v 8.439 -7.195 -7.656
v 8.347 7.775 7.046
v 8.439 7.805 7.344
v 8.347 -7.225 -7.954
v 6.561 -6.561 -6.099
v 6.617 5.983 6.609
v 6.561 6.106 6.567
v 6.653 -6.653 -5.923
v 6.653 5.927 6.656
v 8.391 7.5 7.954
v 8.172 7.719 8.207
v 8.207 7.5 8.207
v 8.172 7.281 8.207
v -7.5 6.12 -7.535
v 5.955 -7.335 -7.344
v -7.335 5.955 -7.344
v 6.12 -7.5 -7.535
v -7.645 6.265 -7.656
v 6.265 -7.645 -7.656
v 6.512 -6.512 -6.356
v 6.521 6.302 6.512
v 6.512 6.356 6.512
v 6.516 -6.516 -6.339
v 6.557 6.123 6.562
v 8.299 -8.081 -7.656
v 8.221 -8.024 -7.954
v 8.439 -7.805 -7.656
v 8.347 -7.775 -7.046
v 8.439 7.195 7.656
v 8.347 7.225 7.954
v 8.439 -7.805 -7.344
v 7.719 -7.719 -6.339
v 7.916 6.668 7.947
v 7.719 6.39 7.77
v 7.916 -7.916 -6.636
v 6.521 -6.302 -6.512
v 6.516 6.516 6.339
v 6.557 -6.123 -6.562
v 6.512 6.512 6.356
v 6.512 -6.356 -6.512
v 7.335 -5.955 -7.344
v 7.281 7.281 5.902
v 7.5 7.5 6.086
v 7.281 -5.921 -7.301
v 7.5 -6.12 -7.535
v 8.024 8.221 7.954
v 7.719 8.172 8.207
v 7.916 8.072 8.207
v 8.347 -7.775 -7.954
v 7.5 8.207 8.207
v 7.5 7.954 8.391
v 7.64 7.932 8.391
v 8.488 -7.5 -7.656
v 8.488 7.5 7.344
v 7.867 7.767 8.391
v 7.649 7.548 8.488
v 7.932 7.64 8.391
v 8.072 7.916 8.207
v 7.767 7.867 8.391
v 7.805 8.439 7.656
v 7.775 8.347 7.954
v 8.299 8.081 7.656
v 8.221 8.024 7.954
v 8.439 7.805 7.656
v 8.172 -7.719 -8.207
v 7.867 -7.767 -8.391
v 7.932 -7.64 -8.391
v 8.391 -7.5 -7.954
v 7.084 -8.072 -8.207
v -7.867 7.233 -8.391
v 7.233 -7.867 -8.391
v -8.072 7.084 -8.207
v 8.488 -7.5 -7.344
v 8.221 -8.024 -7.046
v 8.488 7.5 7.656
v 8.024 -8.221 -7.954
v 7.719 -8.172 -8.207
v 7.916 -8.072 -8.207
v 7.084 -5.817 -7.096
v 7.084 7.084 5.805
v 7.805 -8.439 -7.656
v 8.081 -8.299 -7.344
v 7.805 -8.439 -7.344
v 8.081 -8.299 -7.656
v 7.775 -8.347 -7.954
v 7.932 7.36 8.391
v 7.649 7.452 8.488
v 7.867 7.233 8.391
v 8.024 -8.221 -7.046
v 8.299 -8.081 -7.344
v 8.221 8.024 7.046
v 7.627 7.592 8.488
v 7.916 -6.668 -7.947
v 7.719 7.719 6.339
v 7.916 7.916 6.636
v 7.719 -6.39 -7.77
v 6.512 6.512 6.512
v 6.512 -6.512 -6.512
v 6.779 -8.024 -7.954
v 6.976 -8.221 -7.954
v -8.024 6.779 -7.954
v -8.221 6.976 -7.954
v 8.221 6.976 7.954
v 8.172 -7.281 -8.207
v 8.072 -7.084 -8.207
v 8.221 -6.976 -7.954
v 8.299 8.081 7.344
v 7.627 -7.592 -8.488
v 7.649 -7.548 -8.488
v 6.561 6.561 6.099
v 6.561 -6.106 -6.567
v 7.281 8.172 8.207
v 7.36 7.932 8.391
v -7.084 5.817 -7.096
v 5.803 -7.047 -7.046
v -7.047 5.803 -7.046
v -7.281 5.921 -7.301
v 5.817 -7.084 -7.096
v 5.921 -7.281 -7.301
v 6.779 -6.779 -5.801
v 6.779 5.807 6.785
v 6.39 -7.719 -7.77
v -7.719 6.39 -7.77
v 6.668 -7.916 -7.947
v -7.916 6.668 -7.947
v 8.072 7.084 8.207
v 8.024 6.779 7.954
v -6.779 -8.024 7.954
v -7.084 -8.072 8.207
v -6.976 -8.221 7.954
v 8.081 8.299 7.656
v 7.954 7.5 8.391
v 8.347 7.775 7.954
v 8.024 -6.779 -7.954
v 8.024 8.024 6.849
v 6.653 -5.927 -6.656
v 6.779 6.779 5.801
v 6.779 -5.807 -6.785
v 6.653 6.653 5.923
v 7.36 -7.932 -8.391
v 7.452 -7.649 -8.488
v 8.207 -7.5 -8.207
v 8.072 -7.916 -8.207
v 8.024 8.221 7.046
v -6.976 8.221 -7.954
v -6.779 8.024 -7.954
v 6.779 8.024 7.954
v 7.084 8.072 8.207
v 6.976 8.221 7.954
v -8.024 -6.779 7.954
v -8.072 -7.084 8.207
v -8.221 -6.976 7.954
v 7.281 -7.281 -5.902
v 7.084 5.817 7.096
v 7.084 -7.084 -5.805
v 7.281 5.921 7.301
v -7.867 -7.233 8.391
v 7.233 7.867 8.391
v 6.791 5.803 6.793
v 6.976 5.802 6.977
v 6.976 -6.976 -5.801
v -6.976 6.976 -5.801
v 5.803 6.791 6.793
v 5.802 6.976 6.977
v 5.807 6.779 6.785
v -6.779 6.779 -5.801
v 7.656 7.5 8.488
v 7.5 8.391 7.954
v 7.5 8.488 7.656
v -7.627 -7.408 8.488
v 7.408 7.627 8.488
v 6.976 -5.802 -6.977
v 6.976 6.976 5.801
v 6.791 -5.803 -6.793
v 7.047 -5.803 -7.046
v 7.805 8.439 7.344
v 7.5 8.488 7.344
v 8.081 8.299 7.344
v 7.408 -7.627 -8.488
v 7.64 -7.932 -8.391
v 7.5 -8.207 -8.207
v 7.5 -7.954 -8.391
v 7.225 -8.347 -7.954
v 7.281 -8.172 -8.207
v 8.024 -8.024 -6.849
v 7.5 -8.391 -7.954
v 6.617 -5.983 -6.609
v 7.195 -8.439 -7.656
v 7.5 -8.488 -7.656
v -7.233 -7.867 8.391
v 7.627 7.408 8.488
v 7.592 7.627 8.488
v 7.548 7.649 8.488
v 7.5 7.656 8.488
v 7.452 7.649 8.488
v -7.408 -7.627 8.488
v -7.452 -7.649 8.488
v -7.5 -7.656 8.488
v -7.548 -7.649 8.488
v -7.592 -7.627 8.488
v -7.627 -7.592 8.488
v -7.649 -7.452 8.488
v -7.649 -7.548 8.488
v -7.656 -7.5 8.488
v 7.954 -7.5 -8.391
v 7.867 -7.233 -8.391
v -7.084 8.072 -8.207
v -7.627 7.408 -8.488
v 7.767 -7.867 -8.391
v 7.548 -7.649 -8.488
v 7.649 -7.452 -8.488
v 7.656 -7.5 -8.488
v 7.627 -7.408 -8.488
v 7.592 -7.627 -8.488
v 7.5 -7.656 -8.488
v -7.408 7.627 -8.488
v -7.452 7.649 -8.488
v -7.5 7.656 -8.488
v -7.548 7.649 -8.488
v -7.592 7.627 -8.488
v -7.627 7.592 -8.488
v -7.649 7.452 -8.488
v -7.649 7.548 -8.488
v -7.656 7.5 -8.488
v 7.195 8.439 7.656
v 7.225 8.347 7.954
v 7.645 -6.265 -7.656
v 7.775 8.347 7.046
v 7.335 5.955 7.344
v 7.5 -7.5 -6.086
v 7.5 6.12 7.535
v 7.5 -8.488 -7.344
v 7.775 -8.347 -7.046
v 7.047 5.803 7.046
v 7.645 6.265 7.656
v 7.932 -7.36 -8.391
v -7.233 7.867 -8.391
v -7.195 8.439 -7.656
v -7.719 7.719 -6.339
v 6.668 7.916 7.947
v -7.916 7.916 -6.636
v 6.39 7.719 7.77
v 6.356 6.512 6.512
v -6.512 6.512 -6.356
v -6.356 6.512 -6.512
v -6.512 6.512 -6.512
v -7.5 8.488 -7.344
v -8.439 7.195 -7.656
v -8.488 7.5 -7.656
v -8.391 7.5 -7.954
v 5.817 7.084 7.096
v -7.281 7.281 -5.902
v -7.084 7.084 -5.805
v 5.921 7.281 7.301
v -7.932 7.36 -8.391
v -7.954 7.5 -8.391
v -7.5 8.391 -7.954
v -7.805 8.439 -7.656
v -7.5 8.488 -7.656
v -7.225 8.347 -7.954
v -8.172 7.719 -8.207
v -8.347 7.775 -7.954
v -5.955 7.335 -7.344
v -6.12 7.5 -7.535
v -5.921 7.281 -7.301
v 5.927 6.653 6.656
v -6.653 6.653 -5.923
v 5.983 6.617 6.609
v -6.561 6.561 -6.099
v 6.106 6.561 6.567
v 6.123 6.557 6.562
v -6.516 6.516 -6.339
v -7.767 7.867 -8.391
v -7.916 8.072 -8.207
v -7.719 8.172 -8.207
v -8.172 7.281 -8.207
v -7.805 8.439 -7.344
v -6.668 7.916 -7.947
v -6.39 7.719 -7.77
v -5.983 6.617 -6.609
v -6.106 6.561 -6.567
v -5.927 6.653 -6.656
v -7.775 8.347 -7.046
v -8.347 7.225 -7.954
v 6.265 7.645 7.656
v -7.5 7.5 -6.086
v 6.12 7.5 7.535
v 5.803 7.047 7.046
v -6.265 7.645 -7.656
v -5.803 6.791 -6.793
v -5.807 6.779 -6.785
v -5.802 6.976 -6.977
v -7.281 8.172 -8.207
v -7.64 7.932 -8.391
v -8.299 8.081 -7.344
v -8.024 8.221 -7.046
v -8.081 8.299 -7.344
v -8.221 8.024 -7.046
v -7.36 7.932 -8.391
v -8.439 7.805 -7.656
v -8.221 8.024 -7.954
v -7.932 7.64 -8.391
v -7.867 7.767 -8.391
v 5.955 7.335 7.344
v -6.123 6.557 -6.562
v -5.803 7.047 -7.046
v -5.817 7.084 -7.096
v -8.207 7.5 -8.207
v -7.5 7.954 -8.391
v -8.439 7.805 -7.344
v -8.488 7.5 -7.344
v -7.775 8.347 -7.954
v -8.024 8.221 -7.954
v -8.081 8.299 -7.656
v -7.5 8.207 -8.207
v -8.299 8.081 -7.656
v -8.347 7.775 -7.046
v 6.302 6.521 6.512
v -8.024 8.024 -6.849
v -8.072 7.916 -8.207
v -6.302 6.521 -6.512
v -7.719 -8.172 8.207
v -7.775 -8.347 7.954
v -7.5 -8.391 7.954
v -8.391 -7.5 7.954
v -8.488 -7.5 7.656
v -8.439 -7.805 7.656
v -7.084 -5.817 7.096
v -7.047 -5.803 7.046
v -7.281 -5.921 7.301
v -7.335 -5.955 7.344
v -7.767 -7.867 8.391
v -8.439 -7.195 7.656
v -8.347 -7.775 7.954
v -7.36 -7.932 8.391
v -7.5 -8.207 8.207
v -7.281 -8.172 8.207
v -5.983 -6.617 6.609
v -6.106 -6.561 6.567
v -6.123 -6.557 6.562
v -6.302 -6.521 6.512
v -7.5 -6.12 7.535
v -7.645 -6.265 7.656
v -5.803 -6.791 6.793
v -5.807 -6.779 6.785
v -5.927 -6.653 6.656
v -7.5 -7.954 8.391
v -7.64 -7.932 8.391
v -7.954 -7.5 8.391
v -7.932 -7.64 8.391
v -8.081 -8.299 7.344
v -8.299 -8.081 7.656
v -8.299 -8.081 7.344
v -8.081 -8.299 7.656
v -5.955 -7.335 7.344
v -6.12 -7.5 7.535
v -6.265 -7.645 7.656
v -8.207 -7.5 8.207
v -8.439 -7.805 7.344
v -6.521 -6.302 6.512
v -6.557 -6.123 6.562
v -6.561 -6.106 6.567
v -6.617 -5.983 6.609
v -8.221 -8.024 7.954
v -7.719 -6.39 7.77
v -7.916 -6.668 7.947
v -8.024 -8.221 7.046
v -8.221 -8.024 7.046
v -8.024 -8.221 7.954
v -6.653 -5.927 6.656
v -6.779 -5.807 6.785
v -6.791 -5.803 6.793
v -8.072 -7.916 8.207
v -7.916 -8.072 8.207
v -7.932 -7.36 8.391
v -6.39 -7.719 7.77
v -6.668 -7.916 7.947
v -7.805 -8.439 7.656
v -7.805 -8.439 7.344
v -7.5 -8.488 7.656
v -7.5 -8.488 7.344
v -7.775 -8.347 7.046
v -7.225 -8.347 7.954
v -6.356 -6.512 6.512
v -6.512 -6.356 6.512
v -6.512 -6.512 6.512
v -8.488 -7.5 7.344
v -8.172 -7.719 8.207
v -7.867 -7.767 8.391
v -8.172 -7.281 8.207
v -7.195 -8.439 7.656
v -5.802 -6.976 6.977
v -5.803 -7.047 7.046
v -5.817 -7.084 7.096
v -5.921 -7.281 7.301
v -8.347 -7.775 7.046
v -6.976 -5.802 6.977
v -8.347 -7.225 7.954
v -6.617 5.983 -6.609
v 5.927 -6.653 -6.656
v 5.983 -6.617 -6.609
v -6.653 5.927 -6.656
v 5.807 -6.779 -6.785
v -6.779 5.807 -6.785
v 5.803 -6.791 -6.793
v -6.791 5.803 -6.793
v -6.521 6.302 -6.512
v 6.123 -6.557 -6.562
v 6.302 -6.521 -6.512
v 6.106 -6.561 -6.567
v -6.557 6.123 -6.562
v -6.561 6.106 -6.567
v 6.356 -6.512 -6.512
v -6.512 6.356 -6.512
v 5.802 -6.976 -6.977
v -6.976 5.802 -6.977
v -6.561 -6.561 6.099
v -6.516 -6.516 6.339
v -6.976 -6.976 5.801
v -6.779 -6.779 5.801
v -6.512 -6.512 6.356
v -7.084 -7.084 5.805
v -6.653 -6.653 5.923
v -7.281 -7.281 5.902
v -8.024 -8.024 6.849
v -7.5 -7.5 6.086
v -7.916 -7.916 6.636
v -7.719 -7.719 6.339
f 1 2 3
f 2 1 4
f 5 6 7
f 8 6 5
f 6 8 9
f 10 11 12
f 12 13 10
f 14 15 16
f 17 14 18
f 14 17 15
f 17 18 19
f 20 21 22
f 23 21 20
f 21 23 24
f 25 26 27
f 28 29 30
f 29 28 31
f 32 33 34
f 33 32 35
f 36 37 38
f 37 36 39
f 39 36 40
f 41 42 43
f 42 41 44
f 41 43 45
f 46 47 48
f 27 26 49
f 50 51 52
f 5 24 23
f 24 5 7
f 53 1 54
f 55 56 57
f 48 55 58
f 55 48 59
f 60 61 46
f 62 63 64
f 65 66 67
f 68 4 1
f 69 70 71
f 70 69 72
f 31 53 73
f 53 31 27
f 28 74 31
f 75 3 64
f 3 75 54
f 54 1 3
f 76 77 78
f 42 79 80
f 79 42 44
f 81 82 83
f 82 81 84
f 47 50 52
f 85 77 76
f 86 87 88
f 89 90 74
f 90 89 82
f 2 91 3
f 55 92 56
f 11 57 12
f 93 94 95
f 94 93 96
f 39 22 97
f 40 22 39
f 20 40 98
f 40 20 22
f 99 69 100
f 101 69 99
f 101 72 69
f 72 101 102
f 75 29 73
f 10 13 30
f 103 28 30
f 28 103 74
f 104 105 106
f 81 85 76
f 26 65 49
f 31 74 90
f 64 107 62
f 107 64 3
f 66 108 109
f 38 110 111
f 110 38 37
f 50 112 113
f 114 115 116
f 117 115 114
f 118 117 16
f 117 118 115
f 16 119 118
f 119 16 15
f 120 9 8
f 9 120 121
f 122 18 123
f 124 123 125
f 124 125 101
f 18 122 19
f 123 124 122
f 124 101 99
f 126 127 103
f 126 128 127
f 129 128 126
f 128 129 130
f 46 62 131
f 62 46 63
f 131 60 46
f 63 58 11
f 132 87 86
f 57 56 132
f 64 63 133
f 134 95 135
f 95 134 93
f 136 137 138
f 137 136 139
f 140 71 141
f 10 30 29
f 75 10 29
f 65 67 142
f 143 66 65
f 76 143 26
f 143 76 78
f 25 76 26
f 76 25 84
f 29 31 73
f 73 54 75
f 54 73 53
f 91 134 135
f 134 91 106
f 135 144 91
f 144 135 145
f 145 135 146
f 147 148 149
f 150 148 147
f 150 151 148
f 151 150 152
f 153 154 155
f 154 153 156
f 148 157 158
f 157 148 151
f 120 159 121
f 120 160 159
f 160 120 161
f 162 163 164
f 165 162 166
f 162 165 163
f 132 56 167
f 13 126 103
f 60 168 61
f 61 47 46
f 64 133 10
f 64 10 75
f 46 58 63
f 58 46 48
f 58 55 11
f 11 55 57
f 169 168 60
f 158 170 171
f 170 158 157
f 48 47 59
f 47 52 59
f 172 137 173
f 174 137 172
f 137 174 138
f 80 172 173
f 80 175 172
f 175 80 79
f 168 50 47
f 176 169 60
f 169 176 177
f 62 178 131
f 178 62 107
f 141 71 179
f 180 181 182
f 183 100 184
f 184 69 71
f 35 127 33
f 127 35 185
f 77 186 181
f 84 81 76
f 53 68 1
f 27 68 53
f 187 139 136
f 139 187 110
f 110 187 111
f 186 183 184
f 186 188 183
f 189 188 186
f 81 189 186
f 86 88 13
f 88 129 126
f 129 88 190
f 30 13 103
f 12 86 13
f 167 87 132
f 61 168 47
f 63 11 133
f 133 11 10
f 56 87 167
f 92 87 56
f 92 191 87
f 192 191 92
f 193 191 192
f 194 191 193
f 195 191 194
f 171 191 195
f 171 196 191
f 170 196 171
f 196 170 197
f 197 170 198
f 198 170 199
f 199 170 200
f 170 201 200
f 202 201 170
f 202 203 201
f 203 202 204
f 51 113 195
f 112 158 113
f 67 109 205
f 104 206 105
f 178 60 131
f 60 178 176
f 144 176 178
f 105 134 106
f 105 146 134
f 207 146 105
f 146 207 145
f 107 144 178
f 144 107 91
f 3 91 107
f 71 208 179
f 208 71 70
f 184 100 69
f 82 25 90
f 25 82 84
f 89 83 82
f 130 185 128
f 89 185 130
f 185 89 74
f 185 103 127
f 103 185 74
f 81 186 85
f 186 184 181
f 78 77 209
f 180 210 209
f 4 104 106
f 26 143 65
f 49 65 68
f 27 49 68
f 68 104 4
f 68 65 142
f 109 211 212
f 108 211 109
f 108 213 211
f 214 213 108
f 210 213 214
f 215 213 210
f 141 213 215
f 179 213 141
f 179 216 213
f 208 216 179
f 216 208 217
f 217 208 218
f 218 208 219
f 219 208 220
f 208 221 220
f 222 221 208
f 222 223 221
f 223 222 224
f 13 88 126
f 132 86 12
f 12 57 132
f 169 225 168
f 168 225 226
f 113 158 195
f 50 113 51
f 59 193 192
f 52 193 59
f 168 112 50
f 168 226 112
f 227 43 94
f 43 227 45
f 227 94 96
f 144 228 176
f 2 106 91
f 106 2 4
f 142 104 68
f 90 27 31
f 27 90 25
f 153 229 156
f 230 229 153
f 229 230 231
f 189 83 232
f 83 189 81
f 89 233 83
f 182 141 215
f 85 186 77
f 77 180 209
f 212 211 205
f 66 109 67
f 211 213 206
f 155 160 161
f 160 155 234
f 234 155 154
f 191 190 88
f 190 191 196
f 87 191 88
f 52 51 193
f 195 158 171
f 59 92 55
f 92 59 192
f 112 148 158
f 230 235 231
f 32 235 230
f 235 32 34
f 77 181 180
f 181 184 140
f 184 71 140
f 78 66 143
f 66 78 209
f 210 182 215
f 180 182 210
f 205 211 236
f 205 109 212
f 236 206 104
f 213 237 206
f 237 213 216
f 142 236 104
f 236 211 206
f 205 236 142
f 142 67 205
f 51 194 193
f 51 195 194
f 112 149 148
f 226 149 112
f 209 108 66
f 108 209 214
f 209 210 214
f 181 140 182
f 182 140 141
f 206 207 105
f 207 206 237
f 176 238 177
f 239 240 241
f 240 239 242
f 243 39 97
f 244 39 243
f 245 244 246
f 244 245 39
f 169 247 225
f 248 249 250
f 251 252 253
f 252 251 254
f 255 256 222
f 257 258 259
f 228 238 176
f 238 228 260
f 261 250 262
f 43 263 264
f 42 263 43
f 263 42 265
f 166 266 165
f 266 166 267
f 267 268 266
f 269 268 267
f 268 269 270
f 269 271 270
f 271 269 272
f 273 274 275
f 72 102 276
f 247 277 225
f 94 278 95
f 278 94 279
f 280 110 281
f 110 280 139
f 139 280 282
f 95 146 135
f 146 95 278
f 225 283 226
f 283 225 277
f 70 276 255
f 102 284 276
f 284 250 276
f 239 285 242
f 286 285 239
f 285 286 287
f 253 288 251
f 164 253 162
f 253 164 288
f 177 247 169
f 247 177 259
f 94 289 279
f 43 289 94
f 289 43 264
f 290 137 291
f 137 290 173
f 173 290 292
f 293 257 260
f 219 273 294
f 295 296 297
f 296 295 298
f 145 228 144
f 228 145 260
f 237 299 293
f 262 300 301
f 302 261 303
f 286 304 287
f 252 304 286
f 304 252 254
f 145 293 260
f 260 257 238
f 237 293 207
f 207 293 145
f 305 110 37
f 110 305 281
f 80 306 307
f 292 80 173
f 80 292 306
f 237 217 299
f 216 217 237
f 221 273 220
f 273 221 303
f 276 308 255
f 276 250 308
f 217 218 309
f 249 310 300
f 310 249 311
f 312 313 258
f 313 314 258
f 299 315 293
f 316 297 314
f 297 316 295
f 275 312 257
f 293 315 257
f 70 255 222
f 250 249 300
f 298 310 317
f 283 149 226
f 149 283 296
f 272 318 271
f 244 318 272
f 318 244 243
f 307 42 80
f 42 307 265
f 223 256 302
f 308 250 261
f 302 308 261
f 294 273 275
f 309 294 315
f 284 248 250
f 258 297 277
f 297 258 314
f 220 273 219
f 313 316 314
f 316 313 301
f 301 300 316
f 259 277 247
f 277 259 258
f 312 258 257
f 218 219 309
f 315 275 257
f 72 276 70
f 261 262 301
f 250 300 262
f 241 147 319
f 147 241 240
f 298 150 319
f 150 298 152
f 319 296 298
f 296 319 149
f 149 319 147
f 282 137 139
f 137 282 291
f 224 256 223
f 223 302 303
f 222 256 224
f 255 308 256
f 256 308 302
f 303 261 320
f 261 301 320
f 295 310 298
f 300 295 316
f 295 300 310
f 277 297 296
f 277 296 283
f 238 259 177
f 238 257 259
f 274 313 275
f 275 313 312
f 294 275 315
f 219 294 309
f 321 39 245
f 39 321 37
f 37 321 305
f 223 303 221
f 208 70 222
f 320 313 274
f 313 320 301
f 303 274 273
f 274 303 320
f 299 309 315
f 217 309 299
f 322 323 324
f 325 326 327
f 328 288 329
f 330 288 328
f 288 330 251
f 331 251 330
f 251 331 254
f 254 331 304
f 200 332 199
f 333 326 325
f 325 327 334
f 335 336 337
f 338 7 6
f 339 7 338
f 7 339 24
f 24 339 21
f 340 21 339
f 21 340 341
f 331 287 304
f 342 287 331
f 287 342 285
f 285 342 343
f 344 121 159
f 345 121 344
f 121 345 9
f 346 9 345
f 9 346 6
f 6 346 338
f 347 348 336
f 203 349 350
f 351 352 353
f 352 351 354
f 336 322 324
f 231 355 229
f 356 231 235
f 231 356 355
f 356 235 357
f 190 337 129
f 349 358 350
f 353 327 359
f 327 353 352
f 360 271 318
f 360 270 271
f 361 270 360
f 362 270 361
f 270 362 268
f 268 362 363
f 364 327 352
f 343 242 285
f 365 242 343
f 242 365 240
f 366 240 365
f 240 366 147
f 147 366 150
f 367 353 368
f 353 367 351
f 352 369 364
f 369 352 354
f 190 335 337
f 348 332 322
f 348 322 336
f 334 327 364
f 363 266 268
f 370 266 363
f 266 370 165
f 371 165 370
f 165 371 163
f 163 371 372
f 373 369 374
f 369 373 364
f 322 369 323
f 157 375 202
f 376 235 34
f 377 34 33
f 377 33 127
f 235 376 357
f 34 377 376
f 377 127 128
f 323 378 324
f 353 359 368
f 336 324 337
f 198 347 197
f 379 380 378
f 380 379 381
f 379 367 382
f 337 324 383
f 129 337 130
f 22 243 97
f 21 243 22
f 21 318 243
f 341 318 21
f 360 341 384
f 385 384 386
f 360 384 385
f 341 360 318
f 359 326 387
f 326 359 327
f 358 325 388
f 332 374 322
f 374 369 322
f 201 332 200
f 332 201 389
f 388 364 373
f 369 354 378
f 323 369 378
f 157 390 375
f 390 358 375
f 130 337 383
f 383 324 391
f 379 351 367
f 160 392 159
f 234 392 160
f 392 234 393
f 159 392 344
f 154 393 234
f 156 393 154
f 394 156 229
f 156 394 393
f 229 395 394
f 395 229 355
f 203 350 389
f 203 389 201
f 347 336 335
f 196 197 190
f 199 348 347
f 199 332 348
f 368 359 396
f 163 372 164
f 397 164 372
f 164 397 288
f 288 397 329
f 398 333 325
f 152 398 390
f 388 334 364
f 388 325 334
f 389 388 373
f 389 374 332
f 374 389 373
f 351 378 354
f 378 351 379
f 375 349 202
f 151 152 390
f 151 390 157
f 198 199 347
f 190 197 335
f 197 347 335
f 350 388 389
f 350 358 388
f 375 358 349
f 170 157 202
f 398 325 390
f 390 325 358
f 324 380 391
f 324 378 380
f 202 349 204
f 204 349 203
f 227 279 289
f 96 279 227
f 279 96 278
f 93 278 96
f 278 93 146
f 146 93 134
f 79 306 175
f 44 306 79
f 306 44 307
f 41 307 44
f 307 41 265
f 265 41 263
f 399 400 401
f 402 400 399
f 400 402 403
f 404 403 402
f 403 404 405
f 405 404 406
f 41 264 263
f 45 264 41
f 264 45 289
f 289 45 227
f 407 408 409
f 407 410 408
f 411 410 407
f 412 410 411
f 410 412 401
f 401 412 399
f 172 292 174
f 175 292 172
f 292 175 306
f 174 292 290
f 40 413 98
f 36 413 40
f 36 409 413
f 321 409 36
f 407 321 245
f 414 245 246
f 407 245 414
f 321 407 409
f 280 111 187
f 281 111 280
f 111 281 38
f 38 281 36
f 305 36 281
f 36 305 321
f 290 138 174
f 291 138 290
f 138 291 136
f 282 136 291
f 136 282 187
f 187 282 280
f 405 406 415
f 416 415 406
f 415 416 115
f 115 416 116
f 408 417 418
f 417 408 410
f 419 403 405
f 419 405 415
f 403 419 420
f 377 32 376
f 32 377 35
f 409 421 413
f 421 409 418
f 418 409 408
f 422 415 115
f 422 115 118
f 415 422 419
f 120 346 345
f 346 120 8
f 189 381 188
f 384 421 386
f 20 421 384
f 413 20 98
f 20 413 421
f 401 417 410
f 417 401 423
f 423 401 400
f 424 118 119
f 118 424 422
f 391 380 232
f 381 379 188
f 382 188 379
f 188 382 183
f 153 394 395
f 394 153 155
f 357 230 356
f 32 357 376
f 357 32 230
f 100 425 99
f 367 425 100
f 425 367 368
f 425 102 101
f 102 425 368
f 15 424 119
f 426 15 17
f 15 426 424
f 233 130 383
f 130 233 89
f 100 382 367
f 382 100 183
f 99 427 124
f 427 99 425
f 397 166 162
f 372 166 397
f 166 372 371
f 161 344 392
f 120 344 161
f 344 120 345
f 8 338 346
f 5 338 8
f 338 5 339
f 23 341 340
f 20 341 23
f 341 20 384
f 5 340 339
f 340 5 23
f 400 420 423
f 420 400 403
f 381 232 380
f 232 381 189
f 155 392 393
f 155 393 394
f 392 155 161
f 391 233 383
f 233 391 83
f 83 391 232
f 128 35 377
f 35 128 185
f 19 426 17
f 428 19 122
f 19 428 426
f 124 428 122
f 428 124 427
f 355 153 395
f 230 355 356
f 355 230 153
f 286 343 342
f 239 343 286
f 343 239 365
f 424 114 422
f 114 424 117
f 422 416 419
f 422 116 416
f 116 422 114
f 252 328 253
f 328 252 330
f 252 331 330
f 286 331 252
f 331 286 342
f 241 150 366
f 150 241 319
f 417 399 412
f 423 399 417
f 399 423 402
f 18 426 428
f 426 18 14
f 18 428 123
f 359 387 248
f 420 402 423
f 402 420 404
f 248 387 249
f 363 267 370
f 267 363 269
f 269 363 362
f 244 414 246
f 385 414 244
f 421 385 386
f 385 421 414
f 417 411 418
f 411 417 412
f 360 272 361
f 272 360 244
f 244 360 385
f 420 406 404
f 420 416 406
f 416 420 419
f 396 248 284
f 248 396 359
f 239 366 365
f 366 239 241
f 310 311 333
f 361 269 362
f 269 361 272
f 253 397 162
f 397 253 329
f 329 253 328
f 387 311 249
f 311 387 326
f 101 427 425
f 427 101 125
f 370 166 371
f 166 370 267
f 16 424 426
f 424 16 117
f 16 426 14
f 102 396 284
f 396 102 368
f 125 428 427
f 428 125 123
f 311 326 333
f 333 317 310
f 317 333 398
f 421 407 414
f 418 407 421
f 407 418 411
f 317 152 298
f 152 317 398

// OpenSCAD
/*

tetrahedron

*/


side = 15;  // side dimension [mm]
thickness = 2; // line thickness [mm]

$fn=20;



// create a line between two points 'p0' and 'p1' with thickness 't'
module line3D( p0, p1, t ) {
    hull() {
        translate( p0 ) sphere(r=t/2);
        translate( p1 ) sphere(r=t/2);
    }
}


// create a tetrahedron with the specified side length and line thickness
module tetrahedron(s, t) {
    l_points = [
    [ s/2,  s/2,  s/2],
    [ s/2, -s/2, -s/2],
    [-s/2,  s/2, -s/2],
    [-s/2, -s/2,  s/2] ];    
    
    union() {
        line3D( l_points[0], l_points[1], t );
        line3D( l_points[0], l_points[2], t );
        line3D( l_points[0], l_points[3], t );
        line3D( l_points[1], l_points[2], t );
        line3D( l_points[1], l_points[3], t );
        line3D( l_points[2], l_points[3], t );
    }
}


// TODO look into using children()
tetrahedron(side, thickness);
